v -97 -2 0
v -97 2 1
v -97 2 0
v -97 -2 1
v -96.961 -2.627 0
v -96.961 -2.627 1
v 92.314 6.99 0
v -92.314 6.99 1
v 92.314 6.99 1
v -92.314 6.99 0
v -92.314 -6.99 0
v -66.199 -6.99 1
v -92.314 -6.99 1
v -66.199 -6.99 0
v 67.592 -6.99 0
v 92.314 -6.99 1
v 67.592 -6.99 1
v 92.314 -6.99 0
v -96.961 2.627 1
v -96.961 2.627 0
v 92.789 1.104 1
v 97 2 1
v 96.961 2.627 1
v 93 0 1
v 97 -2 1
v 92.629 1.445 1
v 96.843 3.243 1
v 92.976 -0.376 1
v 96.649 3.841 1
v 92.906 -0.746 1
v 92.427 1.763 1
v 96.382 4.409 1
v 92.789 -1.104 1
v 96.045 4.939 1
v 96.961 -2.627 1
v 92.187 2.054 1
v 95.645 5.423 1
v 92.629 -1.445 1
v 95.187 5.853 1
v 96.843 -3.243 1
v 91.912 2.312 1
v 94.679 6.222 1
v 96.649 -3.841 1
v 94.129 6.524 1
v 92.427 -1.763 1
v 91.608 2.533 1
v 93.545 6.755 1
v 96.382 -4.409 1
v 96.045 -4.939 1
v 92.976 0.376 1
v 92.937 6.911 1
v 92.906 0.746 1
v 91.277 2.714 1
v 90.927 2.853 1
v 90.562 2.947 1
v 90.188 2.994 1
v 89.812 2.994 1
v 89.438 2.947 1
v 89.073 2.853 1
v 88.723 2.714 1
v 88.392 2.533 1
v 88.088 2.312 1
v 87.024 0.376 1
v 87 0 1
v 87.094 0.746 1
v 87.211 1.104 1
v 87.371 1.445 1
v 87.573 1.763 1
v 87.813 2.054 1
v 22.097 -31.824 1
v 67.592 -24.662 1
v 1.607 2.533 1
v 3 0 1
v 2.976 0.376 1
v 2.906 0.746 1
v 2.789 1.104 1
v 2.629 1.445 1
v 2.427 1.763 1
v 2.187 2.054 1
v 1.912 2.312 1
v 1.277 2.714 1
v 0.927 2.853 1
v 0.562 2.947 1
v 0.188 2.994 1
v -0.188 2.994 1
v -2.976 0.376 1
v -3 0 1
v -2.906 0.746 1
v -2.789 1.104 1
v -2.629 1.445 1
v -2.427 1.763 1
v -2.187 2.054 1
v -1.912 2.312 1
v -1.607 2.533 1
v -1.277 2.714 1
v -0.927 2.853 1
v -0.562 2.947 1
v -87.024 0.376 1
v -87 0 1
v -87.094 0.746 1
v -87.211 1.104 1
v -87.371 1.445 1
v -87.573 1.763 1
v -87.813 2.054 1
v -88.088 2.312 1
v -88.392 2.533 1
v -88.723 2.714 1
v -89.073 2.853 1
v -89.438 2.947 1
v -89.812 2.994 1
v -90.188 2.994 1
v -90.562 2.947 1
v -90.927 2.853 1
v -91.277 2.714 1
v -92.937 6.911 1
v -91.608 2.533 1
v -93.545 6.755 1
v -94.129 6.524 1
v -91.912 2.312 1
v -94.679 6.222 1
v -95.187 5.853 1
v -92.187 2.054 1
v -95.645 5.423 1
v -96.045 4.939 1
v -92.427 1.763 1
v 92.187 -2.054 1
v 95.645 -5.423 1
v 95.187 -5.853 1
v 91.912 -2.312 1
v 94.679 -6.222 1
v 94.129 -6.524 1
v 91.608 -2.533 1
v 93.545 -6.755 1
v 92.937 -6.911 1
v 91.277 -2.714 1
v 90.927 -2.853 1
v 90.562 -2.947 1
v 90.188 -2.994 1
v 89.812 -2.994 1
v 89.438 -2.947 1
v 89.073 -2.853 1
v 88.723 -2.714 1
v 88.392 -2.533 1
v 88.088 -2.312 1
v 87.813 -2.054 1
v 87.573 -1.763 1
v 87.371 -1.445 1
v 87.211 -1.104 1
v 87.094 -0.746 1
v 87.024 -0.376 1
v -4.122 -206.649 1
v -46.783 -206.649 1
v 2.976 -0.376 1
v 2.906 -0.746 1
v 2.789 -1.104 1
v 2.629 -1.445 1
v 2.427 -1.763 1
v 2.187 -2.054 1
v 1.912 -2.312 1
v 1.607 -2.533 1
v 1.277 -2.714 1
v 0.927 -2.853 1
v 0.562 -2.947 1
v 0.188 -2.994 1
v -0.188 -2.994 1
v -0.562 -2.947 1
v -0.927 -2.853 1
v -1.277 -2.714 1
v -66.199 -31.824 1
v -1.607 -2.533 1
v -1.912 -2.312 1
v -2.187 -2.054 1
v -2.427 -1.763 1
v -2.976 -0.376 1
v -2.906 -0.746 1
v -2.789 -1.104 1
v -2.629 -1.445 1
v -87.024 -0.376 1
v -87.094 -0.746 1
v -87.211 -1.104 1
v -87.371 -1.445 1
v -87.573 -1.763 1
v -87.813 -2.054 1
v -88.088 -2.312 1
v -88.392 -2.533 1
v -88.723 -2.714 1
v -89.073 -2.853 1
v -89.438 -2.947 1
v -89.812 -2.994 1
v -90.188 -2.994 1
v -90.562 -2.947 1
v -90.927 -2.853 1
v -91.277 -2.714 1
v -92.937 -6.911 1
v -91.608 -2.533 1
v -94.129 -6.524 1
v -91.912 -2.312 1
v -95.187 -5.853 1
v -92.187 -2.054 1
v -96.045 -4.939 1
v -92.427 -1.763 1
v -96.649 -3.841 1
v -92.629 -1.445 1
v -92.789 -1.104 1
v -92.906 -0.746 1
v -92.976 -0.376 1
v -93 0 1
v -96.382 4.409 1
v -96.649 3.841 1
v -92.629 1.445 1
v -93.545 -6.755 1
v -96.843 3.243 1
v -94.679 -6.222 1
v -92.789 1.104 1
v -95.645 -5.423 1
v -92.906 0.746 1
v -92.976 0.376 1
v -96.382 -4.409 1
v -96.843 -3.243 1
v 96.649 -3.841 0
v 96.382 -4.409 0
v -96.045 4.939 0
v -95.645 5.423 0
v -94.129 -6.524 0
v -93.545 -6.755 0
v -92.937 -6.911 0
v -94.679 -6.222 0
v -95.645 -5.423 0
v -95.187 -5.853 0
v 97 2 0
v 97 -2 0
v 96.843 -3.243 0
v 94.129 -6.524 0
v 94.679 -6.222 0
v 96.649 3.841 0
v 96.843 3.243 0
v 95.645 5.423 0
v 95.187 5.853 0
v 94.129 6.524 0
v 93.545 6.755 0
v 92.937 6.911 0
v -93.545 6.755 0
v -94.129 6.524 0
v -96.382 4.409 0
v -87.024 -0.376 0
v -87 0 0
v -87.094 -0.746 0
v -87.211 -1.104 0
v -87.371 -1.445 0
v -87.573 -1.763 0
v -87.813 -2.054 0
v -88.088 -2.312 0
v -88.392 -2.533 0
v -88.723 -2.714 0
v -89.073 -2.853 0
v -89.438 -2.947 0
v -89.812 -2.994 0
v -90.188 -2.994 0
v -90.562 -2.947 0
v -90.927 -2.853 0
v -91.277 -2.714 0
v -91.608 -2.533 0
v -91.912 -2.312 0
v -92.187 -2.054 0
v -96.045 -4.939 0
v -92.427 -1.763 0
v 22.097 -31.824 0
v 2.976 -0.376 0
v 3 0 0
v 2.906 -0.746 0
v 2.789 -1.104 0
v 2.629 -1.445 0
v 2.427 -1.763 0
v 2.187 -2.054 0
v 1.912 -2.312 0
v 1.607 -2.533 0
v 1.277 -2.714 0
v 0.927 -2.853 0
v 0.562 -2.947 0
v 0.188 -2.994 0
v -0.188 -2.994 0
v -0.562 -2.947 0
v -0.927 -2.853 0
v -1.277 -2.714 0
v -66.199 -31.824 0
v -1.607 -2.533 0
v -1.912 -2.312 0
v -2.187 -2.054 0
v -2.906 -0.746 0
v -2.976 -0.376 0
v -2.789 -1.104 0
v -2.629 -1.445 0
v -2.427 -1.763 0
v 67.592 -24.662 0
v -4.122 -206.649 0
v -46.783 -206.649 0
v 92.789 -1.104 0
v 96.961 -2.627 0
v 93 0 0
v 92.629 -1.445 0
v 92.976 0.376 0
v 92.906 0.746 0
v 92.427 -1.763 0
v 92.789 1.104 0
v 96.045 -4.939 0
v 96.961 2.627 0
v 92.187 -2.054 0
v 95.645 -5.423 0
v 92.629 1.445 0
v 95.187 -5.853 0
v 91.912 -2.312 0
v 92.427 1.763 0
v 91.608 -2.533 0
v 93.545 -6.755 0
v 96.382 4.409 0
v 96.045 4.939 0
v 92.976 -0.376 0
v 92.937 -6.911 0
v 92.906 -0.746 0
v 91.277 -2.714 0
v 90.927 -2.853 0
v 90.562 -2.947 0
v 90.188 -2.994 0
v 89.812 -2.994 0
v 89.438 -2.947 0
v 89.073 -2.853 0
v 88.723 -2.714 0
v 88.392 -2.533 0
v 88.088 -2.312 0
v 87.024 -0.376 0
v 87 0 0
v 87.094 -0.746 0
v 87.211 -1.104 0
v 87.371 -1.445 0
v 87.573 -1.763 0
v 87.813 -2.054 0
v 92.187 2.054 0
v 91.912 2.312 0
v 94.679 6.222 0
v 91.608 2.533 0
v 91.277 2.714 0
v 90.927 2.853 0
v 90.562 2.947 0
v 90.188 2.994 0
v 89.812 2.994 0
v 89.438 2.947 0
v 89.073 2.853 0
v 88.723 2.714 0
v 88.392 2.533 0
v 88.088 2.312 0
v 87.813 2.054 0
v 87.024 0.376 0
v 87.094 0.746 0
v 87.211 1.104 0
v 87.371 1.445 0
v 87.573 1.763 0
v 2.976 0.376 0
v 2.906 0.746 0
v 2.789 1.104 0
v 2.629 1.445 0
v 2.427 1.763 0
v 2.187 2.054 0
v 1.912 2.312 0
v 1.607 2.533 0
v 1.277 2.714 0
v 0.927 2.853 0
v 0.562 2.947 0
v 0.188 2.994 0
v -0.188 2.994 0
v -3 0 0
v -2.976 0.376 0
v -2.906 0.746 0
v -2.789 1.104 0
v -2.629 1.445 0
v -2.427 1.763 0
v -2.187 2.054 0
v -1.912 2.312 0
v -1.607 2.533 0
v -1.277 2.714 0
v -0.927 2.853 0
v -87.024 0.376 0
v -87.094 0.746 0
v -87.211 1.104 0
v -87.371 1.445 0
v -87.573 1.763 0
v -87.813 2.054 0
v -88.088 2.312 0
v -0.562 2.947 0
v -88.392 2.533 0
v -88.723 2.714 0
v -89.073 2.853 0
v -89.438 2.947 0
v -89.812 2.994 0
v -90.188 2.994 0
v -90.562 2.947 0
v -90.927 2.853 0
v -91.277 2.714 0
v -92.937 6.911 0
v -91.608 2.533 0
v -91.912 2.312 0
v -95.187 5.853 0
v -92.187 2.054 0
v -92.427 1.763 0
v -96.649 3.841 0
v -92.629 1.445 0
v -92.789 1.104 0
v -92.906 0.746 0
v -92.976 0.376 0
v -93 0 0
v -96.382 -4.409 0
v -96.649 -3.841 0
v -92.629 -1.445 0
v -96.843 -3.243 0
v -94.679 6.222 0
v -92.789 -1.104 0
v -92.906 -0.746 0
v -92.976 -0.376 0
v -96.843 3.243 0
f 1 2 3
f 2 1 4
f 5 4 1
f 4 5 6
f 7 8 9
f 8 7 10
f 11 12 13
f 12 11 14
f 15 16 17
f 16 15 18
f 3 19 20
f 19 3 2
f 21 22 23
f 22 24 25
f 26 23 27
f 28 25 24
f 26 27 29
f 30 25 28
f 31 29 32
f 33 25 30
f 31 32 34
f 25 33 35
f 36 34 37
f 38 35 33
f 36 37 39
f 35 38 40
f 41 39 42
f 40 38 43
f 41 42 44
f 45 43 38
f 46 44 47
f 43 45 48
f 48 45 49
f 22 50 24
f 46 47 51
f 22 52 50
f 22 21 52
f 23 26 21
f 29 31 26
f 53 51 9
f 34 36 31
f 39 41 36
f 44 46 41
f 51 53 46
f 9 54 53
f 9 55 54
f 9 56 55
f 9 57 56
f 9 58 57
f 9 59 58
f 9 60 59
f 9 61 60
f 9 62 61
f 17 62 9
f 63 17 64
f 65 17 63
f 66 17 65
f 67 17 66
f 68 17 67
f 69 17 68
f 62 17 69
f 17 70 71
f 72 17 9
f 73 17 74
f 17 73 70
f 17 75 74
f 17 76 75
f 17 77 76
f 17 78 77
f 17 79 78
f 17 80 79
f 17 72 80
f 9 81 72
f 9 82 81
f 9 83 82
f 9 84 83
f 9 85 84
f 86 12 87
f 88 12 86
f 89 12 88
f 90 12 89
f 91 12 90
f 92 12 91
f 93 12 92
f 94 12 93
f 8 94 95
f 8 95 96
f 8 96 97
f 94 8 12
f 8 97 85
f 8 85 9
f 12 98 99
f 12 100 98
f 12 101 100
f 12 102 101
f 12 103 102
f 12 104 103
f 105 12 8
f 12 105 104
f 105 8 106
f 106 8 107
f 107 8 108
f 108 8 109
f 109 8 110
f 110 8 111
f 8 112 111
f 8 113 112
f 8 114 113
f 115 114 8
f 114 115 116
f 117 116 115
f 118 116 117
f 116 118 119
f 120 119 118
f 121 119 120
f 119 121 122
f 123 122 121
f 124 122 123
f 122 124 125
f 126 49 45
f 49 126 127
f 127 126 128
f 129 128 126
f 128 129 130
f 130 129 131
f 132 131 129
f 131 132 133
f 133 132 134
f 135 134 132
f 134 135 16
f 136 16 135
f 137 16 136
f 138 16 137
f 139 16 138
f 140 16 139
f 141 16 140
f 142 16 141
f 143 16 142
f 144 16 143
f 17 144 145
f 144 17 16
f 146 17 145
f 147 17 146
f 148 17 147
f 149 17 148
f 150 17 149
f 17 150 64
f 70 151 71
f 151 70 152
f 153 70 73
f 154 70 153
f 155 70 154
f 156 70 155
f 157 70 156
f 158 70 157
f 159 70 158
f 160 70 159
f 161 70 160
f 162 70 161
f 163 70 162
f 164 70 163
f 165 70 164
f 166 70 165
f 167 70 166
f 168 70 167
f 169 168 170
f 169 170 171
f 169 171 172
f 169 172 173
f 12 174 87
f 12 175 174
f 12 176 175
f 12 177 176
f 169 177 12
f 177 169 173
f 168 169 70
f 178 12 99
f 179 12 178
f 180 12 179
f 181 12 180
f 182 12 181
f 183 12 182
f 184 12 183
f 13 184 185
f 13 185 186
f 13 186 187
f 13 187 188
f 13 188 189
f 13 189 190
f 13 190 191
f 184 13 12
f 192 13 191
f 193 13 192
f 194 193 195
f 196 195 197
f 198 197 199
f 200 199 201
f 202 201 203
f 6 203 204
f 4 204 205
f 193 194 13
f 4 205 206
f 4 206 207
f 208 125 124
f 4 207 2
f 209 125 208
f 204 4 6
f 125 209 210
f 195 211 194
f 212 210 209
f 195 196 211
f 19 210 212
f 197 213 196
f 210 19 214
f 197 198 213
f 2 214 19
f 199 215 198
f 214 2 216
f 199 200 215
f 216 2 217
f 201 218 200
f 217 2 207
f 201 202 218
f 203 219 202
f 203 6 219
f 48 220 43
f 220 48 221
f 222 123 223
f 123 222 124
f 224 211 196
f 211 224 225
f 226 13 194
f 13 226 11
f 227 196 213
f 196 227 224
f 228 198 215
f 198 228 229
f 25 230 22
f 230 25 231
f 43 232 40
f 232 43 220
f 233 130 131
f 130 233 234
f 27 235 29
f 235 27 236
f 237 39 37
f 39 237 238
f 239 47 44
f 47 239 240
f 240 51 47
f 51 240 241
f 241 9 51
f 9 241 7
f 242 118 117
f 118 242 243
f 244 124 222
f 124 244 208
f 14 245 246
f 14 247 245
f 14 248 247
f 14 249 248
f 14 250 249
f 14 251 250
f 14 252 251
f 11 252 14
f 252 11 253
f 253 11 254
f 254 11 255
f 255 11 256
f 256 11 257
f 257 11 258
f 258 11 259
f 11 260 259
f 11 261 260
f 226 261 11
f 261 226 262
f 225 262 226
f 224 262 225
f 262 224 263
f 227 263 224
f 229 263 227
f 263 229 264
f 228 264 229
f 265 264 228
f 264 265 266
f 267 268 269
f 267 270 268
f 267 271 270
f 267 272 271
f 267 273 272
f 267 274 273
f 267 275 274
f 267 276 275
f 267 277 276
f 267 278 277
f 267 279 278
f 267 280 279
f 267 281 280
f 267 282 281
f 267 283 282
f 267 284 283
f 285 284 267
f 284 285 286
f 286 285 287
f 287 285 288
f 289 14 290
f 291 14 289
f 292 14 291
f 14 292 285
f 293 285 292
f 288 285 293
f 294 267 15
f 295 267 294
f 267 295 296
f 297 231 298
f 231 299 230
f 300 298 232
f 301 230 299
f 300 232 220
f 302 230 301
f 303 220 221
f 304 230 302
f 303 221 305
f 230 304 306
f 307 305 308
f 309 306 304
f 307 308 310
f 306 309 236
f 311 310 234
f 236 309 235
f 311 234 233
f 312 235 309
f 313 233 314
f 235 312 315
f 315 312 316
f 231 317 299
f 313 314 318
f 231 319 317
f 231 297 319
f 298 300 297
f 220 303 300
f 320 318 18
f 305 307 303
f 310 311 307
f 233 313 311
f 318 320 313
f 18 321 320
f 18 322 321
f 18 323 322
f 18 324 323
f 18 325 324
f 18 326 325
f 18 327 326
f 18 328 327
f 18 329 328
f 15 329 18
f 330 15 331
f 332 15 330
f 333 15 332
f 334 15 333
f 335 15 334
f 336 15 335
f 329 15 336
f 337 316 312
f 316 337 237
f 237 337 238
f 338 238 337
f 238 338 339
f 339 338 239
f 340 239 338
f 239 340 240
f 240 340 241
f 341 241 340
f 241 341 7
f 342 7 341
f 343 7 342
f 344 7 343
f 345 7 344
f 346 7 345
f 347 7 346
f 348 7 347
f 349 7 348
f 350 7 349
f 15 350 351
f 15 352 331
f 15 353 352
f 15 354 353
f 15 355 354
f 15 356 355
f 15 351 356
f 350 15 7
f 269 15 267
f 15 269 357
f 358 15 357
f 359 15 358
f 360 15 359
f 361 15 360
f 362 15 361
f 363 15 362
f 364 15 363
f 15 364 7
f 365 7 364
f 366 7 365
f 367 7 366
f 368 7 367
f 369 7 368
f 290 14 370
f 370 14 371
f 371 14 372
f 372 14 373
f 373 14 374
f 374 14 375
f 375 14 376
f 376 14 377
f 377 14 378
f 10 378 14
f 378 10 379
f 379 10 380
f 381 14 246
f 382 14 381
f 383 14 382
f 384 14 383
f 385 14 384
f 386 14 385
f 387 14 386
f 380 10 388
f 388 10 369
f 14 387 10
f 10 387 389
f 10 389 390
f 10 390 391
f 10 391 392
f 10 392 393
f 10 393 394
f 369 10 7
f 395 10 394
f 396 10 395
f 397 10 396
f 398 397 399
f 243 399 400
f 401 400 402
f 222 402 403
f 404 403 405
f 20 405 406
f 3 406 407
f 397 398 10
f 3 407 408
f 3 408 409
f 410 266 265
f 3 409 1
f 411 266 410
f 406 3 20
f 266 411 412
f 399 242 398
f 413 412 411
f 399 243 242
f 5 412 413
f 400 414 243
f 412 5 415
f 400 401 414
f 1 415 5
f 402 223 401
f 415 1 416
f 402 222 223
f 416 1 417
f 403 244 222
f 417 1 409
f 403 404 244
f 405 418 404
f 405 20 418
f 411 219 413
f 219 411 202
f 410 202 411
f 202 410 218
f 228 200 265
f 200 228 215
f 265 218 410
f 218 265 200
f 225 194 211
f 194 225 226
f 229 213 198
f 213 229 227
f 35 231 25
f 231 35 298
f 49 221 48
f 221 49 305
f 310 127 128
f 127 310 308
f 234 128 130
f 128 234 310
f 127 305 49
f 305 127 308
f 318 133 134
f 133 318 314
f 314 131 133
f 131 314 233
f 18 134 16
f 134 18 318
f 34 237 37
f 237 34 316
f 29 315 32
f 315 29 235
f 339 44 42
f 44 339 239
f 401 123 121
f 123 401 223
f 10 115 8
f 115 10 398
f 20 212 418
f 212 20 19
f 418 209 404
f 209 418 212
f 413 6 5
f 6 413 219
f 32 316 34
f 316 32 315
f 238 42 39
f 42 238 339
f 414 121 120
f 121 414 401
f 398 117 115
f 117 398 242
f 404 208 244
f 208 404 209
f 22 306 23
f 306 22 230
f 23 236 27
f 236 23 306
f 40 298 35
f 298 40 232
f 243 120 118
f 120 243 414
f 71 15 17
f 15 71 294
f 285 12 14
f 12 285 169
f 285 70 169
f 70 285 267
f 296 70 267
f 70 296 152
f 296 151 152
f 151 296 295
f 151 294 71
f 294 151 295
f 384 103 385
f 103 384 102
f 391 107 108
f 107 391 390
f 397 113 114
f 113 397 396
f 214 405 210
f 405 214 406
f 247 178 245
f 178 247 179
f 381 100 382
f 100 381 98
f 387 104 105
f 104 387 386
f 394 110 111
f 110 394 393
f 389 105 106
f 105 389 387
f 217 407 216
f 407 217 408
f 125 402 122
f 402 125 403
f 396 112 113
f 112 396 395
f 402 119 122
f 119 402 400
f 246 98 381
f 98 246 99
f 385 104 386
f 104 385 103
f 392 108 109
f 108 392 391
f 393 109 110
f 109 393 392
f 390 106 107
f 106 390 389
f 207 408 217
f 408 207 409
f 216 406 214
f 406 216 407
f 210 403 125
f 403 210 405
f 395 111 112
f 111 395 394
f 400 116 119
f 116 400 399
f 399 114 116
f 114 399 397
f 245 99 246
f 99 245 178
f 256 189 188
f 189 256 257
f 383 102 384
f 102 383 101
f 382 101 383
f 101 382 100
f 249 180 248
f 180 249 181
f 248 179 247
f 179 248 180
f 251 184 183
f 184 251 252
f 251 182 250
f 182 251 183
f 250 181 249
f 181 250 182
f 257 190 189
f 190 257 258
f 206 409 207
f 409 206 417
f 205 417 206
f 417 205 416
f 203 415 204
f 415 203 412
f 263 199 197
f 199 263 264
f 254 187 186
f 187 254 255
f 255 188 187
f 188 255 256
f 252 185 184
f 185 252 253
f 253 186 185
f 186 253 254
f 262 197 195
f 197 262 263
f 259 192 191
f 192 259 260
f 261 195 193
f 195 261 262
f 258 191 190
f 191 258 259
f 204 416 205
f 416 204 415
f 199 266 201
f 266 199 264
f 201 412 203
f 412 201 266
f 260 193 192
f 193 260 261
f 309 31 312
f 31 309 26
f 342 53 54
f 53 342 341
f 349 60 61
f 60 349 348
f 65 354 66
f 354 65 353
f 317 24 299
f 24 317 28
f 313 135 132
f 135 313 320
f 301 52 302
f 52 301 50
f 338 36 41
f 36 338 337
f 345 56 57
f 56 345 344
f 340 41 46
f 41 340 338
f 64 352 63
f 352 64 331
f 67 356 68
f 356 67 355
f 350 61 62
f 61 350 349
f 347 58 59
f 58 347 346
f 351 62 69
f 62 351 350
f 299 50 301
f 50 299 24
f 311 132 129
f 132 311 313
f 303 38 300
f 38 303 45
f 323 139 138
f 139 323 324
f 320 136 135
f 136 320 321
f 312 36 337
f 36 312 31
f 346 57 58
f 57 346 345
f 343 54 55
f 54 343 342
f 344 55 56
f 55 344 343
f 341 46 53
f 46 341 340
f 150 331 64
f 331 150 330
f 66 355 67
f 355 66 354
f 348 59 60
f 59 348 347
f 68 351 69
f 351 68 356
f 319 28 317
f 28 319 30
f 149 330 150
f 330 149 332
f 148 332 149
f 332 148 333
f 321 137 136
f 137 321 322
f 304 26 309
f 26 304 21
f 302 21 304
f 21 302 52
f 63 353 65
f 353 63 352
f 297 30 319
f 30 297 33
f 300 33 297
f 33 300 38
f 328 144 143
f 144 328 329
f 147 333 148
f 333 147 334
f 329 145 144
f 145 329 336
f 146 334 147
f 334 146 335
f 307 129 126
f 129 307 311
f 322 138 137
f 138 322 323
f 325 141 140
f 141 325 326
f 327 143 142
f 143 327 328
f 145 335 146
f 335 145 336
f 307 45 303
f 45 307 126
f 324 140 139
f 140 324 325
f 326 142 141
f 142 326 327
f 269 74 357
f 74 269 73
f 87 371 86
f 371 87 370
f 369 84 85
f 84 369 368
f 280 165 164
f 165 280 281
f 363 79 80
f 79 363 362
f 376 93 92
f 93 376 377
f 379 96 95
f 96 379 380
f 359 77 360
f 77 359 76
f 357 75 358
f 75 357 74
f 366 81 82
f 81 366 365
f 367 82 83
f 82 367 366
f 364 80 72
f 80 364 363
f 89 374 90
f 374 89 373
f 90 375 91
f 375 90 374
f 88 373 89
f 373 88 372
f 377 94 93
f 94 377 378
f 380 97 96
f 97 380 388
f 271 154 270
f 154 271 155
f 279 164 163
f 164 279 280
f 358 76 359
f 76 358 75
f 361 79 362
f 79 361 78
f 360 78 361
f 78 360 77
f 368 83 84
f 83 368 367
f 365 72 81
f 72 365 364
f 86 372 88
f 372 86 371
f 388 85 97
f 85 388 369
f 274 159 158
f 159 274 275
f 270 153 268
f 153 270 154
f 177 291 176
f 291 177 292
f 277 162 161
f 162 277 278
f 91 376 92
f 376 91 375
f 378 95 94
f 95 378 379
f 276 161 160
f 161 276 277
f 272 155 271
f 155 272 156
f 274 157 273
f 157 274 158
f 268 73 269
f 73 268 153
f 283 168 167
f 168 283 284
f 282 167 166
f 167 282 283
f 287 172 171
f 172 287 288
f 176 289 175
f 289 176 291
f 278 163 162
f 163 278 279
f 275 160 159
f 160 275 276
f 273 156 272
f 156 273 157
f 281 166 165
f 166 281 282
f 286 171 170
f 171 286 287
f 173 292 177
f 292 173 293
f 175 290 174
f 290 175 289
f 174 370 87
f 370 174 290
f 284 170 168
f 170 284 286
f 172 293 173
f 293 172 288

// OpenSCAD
$fn = 50;


difference() {
	union() {
		translate(v = [0, 0, 0]) {
			rotate(a = [0, 0, 0]) {
				hull() {
					translate(v = [-92.0000000000, 2.0000000000, 0]) {
						rotate(a = [0, 0, 0]) {
							translate(v = [0, 0, 0]) {
								rotate(a = [0, 0, 0]) {
									cylinder(h = 1, r = 5);
								}
							}
						}
					}
					translate(v = [92.0000000000, 2.0000000000, 0]) {
						rotate(a = [0, 0, 0]) {
							translate(v = [0, 0, 0]) {
								rotate(a = [0, 0, 0]) {
									cylinder(h = 1, r = 5);
								}
							}
						}
					}
					translate(v = [-92.0000000000, -2.0000000000, 0]) {
						rotate(a = [0, 0, 0]) {
							translate(v = [0, 0, 0]) {
								rotate(a = [0, 0, 0]) {
									cylinder(h = 1, r = 5);
								}
							}
						}
					}
					translate(v = [92.0000000000, -2.0000000000, 0]) {
						rotate(a = [0, 0, 0]) {
							translate(v = [0, 0, 0]) {
								rotate(a = [0, 0, 0]) {
									cylinder(h = 1, r = 5);
								}
							}
						}
					}
				}
			}
		}
		translate(v = [0, 0, 0]) {
			rotate(a = [0, 0, 0]) {
				linear_extrude(height = 1) {
					text(font = "DejaVu Sans Mono:style=Bold", halign = "center", size = 209.0000000000, text = "7", valign = "top");
				}
			}
		}
	}
	union() {
		translate(v = [-90.0000000000, 0.0000000000, -125.0000000000]) {
			rotate(a = [0, 0, 0]) {
				cylinder(h = 250, r = 3.0000000000);
			}
		}
		translate(v = [90.0000000000, 0.0000000000, -125.0000000000]) {
			rotate(a = [0, 0, 0]) {
				cylinder(h = 250, r = 3.0000000000);
			}
		}
		translate(v = [90.0000000000, 0.0000000000, -125.0000000000]) {
			rotate(a = [0, 0, 0]) {
				cylinder(h = 250, r = 3.0000000000);
			}
		}
		translate(v = [0, 0, -125.0000000000]) {
			rotate(a = [0, 0, 0]) {
				cylinder(h = 250, r = 3.0000000000);
			}
		}
	}
}
